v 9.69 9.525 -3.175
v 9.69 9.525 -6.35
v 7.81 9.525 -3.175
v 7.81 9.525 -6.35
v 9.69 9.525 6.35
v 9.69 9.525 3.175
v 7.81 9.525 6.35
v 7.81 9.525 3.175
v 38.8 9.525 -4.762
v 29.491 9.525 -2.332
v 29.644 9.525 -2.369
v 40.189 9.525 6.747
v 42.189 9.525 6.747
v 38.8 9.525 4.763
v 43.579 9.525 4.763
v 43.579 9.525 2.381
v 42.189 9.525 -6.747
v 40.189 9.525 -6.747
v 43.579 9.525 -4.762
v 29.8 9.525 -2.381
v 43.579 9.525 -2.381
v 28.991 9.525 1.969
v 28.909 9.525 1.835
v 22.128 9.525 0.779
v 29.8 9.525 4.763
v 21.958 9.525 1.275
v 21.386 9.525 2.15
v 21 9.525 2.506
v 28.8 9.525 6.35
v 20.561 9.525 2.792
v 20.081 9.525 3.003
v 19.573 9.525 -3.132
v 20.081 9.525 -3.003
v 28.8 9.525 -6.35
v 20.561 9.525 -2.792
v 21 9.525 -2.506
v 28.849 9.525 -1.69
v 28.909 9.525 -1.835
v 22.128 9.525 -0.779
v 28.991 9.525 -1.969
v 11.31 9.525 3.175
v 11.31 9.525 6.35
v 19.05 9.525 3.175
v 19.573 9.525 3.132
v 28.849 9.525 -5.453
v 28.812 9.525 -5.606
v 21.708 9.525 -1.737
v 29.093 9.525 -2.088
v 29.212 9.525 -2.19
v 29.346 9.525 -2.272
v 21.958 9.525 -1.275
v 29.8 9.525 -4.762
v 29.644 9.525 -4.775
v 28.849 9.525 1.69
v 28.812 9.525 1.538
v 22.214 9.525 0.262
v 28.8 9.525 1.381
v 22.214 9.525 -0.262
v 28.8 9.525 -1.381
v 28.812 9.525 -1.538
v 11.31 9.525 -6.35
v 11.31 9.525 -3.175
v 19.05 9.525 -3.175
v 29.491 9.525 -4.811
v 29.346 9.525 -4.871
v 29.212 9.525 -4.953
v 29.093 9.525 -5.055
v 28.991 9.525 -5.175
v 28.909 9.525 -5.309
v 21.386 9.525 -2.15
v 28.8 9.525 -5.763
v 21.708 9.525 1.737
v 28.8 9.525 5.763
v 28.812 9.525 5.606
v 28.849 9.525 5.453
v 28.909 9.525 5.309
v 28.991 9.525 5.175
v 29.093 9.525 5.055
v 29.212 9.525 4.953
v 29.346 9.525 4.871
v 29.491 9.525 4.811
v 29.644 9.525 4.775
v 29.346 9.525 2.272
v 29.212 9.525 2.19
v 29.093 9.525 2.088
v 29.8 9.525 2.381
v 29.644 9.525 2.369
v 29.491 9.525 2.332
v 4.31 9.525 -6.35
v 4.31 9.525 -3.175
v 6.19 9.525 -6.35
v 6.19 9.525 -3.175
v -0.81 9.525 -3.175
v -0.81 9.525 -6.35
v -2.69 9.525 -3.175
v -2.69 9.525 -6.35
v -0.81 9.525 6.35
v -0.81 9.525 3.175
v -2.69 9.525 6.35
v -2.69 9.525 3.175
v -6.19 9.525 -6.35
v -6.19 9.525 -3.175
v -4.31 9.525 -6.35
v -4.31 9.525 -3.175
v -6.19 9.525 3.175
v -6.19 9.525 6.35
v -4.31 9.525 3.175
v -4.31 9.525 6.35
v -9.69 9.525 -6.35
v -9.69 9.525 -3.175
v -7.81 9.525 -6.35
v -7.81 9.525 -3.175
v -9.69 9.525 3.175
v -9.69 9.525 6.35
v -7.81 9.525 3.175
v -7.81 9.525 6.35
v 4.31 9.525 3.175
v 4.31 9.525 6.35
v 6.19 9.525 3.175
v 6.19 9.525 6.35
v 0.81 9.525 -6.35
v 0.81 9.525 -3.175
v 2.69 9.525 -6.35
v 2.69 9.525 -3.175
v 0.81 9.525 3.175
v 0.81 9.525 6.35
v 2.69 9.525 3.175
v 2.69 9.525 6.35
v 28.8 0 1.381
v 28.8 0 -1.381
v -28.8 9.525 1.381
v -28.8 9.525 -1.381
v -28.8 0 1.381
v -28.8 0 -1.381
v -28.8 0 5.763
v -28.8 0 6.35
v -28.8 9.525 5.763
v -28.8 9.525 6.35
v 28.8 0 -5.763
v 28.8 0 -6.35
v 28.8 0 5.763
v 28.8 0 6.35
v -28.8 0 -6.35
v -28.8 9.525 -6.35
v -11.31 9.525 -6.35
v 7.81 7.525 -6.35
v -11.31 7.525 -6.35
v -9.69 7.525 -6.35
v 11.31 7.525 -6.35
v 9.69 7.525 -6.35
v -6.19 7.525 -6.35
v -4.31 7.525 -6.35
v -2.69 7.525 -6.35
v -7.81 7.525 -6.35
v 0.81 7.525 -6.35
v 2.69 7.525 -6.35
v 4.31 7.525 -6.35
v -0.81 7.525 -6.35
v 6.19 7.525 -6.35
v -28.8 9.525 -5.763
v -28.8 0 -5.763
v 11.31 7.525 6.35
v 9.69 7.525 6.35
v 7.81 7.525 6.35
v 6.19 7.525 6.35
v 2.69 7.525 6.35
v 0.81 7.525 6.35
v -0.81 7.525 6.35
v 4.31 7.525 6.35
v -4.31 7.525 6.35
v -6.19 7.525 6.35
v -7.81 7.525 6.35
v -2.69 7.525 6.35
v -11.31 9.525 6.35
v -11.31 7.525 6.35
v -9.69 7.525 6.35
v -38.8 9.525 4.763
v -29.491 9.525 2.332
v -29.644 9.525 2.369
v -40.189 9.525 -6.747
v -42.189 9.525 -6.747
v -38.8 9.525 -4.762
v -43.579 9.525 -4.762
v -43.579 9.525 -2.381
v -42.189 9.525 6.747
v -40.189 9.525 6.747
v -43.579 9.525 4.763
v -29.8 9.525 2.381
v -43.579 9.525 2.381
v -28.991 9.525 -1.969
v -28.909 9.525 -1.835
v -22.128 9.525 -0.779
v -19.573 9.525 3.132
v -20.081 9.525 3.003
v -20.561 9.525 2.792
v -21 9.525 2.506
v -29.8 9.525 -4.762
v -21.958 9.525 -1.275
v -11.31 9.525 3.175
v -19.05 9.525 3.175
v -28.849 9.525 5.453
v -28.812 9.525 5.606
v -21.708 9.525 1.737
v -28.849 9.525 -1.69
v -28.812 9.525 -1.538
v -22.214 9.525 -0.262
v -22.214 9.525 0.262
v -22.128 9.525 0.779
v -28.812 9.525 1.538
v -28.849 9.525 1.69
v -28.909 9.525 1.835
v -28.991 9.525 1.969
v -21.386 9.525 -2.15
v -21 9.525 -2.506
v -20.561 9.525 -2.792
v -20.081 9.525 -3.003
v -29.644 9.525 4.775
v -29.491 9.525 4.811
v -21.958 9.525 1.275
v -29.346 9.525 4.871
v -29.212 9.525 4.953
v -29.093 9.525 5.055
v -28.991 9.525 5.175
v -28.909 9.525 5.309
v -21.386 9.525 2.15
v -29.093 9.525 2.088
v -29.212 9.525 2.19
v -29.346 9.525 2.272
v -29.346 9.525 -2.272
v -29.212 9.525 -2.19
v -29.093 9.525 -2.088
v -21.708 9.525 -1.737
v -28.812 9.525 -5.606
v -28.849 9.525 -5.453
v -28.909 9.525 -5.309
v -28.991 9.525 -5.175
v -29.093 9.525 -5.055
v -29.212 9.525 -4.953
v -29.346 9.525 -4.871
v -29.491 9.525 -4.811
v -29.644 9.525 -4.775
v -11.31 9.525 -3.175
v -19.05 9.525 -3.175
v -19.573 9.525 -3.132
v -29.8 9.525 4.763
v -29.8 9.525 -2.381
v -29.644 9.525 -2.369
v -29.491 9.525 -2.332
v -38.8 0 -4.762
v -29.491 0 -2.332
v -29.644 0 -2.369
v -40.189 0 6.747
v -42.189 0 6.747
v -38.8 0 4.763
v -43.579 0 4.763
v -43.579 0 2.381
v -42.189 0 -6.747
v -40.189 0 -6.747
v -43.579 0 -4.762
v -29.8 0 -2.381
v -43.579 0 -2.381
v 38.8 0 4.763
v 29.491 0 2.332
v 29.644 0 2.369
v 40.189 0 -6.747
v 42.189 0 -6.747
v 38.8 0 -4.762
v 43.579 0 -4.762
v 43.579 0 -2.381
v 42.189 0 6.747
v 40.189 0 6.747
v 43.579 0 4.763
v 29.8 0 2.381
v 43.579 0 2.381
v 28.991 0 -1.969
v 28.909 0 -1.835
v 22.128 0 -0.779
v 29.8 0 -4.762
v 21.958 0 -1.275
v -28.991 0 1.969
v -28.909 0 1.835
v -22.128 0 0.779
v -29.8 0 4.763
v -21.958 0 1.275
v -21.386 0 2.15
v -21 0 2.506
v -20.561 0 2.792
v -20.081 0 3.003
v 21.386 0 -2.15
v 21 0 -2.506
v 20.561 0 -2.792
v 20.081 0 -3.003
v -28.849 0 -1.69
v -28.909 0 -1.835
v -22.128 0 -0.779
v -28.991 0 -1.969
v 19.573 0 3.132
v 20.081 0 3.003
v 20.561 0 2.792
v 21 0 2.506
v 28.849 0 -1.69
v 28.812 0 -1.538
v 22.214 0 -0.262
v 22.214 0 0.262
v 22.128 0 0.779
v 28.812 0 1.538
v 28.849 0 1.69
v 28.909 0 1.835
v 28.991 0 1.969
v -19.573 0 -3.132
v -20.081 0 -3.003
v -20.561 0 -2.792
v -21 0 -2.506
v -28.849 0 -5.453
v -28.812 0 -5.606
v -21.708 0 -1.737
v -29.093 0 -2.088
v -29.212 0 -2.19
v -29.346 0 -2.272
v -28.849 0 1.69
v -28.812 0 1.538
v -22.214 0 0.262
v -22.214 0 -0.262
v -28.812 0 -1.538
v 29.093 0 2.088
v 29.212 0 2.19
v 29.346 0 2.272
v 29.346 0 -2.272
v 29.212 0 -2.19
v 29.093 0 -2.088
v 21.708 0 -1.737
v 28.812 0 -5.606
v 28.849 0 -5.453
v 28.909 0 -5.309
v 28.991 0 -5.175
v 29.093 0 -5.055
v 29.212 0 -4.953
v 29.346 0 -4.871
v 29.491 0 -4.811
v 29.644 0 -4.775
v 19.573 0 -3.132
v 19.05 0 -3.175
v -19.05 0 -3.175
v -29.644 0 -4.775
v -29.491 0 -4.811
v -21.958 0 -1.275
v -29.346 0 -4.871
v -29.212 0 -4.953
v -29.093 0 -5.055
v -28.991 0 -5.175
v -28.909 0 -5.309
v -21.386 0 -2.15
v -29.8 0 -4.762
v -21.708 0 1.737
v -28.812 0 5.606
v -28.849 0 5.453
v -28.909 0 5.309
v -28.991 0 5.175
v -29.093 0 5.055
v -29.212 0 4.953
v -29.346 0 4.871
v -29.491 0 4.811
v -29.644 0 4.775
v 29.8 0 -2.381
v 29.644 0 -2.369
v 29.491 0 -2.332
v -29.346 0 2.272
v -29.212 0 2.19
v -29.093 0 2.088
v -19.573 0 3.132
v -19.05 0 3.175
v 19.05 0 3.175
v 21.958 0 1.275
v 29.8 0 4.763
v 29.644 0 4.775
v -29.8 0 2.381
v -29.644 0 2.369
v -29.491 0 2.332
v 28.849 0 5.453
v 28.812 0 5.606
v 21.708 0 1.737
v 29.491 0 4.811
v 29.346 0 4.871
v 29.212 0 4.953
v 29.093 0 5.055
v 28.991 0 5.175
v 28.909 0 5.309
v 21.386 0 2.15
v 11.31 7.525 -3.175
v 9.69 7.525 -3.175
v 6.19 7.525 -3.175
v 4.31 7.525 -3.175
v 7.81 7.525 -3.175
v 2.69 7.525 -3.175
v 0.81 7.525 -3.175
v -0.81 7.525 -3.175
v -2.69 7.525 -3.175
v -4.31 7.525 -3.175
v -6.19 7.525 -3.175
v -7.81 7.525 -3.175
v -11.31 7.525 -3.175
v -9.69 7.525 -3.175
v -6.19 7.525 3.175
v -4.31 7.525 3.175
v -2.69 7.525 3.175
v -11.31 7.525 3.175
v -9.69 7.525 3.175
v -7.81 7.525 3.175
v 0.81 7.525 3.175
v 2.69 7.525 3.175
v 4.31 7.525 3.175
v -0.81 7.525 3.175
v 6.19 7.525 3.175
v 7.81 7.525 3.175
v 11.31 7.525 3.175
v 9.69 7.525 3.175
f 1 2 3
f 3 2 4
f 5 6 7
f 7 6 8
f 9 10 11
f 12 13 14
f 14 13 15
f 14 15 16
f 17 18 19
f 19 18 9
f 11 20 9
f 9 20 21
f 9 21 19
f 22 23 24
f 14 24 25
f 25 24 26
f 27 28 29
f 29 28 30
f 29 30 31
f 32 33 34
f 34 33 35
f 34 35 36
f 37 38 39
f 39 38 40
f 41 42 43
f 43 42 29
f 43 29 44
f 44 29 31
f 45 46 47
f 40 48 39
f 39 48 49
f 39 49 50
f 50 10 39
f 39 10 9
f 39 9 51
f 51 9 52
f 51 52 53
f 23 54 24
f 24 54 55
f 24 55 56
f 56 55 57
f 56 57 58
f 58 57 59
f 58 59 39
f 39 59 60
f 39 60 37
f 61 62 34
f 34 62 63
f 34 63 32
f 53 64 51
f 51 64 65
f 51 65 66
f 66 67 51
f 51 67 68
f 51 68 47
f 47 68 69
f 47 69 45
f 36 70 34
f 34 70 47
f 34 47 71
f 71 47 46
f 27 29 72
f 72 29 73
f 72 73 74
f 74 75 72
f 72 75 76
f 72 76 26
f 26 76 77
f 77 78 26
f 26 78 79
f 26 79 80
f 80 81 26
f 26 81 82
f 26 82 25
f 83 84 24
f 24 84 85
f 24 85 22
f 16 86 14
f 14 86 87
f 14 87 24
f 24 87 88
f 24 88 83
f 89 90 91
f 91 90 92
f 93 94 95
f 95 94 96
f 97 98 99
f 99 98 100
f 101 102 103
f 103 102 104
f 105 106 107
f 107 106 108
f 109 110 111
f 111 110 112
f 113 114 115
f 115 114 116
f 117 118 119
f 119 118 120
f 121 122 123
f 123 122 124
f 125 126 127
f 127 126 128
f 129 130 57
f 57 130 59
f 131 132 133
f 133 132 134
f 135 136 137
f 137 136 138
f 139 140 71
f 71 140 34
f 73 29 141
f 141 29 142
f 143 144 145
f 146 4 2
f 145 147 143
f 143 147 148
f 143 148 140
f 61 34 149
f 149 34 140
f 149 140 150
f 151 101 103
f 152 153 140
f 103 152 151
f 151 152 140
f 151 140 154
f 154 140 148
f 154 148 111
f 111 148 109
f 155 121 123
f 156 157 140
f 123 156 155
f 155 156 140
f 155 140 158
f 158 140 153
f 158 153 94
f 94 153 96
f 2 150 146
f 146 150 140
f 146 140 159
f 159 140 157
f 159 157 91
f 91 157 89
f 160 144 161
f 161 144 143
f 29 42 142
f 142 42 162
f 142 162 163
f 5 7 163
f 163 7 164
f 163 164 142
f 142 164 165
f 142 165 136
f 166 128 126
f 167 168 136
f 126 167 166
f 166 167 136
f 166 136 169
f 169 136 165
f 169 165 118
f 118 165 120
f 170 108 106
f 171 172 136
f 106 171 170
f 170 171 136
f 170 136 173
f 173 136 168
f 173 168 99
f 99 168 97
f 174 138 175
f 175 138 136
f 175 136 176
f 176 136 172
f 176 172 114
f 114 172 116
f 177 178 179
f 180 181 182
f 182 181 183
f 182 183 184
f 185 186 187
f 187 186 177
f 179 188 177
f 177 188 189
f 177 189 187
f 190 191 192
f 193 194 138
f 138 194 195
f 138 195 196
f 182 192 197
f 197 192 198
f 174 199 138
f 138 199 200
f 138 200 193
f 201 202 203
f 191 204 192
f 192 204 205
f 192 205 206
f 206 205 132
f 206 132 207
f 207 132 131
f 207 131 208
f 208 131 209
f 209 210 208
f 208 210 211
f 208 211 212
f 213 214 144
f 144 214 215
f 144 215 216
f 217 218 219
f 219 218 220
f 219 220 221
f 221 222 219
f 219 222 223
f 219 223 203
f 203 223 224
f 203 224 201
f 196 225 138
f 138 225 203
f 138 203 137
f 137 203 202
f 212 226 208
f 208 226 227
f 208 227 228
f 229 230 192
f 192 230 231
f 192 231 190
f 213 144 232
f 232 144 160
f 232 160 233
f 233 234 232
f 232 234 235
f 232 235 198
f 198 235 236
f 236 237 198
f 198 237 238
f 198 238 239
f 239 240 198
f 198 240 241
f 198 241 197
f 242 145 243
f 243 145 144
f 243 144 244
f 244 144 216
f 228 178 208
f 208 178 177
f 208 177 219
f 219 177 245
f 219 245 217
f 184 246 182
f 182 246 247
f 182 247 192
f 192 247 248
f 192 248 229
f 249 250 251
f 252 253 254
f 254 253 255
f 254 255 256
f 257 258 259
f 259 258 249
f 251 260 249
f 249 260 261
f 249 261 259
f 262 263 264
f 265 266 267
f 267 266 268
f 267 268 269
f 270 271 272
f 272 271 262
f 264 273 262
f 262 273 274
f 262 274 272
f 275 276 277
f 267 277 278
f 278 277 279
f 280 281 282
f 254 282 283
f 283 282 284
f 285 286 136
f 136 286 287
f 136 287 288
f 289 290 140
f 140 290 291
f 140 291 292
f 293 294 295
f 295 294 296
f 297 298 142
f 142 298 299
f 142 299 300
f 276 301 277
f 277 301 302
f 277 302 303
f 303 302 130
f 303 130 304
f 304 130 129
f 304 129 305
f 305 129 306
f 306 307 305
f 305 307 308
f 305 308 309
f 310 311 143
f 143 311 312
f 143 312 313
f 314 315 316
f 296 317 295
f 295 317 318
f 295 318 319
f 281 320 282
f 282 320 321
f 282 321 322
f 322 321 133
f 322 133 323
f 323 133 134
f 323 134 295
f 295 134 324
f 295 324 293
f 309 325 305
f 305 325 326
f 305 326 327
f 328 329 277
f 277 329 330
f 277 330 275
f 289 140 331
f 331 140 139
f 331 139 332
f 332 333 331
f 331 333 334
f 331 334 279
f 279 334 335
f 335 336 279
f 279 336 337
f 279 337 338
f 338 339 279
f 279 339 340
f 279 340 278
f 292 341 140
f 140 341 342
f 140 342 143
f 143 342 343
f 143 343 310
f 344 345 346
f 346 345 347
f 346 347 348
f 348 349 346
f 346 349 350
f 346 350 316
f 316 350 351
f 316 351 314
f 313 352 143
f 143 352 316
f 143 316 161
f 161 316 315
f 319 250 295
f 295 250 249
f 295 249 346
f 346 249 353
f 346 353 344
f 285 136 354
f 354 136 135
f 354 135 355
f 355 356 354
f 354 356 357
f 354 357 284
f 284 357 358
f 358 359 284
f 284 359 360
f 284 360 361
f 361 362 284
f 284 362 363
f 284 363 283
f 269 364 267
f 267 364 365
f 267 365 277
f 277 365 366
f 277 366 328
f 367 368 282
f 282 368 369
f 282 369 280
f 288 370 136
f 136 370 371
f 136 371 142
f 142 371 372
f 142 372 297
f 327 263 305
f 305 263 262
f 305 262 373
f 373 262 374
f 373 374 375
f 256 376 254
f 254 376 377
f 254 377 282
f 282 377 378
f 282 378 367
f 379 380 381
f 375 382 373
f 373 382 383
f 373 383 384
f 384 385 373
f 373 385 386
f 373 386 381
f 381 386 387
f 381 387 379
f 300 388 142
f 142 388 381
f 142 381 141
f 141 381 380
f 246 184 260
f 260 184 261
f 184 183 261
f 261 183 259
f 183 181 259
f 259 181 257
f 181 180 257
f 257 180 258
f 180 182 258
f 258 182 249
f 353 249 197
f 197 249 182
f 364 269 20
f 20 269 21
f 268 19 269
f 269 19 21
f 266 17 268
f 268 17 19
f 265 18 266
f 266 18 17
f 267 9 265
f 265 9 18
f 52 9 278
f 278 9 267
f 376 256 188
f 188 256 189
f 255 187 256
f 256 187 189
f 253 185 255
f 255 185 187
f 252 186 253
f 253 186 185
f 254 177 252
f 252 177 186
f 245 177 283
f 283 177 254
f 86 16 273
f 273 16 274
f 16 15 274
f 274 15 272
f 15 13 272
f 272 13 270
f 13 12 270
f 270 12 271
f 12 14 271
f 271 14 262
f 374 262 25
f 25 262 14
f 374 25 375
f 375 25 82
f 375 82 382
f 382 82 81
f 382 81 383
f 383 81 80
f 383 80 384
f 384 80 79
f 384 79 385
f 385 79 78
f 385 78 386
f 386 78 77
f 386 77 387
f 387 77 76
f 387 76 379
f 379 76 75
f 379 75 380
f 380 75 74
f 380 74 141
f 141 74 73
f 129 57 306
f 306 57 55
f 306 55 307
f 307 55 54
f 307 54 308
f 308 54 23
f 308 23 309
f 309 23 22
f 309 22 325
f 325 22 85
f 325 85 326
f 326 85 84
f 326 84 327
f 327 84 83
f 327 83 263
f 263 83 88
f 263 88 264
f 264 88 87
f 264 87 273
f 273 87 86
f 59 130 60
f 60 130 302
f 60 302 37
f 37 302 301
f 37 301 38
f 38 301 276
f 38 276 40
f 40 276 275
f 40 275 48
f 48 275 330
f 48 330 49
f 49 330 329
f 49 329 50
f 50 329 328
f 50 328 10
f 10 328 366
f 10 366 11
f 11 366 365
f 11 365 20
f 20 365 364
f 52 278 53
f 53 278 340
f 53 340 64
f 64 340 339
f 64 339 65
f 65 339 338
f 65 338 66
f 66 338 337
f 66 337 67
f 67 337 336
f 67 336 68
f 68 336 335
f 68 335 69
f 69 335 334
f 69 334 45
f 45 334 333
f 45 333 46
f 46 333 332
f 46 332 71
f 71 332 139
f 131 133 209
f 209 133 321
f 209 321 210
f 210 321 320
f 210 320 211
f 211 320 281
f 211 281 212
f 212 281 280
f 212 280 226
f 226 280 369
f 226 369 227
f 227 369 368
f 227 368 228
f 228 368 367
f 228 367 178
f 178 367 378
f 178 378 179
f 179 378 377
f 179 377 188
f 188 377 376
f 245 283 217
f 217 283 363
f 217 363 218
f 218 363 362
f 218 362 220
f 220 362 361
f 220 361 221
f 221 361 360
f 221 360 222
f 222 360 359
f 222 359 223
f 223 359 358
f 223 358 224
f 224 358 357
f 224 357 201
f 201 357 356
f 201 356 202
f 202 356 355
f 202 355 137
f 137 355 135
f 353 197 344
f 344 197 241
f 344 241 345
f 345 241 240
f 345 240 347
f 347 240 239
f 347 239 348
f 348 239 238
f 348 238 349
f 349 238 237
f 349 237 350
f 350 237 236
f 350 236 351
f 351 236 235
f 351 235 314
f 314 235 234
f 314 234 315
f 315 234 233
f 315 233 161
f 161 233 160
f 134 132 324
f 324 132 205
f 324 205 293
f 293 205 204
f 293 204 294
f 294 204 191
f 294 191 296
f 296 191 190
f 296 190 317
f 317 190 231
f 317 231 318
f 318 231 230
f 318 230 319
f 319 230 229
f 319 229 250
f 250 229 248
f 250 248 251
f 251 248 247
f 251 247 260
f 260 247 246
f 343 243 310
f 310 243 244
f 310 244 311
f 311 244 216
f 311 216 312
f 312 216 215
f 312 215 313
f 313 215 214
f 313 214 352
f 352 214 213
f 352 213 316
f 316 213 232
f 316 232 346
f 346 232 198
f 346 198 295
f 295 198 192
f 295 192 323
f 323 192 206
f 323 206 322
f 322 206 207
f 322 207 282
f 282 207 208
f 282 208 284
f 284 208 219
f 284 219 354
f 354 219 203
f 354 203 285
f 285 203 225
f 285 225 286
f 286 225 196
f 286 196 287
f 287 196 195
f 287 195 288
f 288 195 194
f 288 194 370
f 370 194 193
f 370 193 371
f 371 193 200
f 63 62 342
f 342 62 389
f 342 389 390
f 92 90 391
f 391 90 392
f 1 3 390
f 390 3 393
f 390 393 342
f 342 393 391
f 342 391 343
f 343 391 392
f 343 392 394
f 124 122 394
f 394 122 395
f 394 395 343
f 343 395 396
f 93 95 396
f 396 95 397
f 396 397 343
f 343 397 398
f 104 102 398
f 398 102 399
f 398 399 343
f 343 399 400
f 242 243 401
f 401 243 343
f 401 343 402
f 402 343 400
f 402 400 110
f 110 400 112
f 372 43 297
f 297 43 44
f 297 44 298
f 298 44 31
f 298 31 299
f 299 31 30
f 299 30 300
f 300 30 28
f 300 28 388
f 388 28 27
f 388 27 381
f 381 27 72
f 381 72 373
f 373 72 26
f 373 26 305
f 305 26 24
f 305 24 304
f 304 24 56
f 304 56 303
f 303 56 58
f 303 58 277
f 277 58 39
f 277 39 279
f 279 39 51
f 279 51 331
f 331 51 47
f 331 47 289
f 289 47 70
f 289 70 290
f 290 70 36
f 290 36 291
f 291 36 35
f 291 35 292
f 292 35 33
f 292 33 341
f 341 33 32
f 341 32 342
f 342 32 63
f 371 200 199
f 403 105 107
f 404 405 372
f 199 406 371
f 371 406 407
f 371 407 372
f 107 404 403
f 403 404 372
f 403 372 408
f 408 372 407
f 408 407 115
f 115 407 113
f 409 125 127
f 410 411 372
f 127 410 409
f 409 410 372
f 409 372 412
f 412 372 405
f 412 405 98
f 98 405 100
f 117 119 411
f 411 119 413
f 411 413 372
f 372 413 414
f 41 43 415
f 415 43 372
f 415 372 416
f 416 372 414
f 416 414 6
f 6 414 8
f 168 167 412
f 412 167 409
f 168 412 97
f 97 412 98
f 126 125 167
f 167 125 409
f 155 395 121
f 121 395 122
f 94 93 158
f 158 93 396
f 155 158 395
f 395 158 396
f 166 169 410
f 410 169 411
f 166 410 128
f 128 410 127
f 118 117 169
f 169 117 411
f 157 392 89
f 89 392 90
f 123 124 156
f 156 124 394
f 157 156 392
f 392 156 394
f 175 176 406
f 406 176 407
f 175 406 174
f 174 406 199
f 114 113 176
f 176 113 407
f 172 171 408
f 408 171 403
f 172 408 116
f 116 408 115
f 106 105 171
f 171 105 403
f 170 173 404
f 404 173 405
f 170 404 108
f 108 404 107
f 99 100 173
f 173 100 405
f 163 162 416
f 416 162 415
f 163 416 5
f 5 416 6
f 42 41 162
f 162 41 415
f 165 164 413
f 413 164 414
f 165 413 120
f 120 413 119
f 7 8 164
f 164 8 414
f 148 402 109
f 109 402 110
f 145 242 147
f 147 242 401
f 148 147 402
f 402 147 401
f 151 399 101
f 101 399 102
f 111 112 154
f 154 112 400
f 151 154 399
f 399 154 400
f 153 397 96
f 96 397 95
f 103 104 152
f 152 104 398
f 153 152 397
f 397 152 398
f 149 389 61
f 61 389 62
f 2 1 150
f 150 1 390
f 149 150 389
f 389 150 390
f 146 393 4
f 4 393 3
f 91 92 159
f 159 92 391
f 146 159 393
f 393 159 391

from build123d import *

# Parameters (mm, degrees)
SKETCH1_W            = 57.6
SKETCH1_H            = 12.7
BOSS_EXTRUDE1_DEPTH  = 9.525
BOSS_EXTRUDE2_DEPTH  = 9.525
MIRROR2_COPY_1_DEPTH = 9.525
FILLET1_R            = 1
CUT_EXTRUDE1_DEPTH   = 10.525
SKETCH3_W            = 1.62
SKETCH3_H            = 12.7
CUT_EXTRUDE2_DEPTH   = 2
LPATTERN1_COUNT      = 4
LPATTERN1_PITCH      = 3.5
LPATTERN1_COL_COUNT  = 4
LPATTERN1_COL_PITCH  = 3.5


with BuildPart() as part:
    # Sketch1 → Boss-Extrude1 (new body)
    with BuildSketch(Plane(origin=(0, 0, 0), x_dir=(1, 0, 0), z_dir=(0, 1, 0))):
        Rectangle(SKETCH1_W, SKETCH1_H)
    extrude(amount=BOSS_EXTRUDE1_DEPTH)

    # Sketch2 → Boss-Extrude2 (add)
    with BuildSketch(Plane(origin=(0, 9.525, 0), x_dir=(1, 0, 0), z_dir=(0, 1, 0))):
        Polygon((-28.8, 4.7625), (-38.8, 4.7625), (-40.189474334, 6.746875), (-42.189474334, 6.746875), (-43.578948667, 4.7625), (-43.578948667, 2.38125), (-28.8, 2.38125), align=None)
    boss_extrude2 = extrude(amount=-BOSS_EXTRUDE2_DEPTH)

    # Mirror1: Boss-Extrude2 across plane
    add(boss_extrude2.mirror(Plane(origin=(0, 0, 0), x_dir=(0, 0, 1), z_dir=(1, 0, 0))))

    # Mirror2: Boss-Extrude2 across plane
    add(boss_extrude2.mirror(Plane.XY))

    # Mirror2 copy 1 sketch → Mirror2 copy 1 (add)
    with BuildSketch(Plane(origin=(0, 9.525, 0), x_dir=(-1, 0, 0), z_dir=(0, 1, 0))):
        Polygon((-28.8, 4.7625), (-38.8, 4.7625), (-40.189474334, 6.746875), (-42.189474334, 6.746875), (-43.578948667, 4.7625), (-43.578948667, 2.38125), (-28.8, 2.38125), align=None)
    extrude(amount=-MIRROR2_COPY_1_DEPTH)

    # Fillet1
    fillet1_edges = [part.edges().sort_by_distance(p)[0] for p in [
        (-28.8, 4.7625, -4.7625),
        (-28.8, 4.7625, -2.38125),
        (28.8, 4.7625, -4.7625),
        (28.8, 4.7625, -2.38125),
        (-28.8, 4.7625, 4.7625),
        (-28.8, 4.7625, 2.38125),
        (28.8, 4.7625, 4.7625),
        (28.8, 4.7625, 2.38125),
    ]]
    fillet(fillet1_edges, radius=FILLET1_R)

    # Sketch4 → Cut-Extrude1 (cut, through all)
    with BuildSketch(Plane(origin=(0, 9.525, 0), x_dir=(1, 0, 0), z_dir=(0, 1, 0))):
        with BuildLine():
            Line((-19.05, 3.175), (19.05, 3.175))
            ThreePointArc((19.05, 3.175), (22.225, 0), (19.05, -3.175))
            Line((19.05, -3.175), (-19.05, -3.175))
            ThreePointArc((-19.05, -3.175), (-22.225, 0), (-19.05, 3.175))
        make_face()
    extrude(amount=-CUT_EXTRUDE1_DEPTH, mode=Mode.SUBTRACT)

    # Sketch3 → Cut-Extrude2 (cut)
    with BuildSketch(Plane(origin=(0, 9.525, 0), x_dir=(1, 0, 0), z_dir=(0, 1, 0))):
        Rectangle(SKETCH3_W, SKETCH3_H)
    cut_extrude2 = extrude(amount=-CUT_EXTRUDE2_DEPTH, mode=Mode.SUBTRACT)

    # LPattern1: Cut-Extrude2 ×4
    with Locations(*[(-i * LPATTERN1_PITCH, 0, 0) for i in range(1, LPATTERN1_COUNT)]):
        add(cut_extrude2, mode=Mode.SUBTRACT)

    # LPattern1 col: Cut-Extrude2 ×4
    with Locations(*[(i * LPATTERN1_COL_PITCH, 0, 0) for i in range(1, LPATTERN1_COL_COUNT)]):
        add(cut_extrude2, mode=Mode.SUBTRACT)


solid = part.part
